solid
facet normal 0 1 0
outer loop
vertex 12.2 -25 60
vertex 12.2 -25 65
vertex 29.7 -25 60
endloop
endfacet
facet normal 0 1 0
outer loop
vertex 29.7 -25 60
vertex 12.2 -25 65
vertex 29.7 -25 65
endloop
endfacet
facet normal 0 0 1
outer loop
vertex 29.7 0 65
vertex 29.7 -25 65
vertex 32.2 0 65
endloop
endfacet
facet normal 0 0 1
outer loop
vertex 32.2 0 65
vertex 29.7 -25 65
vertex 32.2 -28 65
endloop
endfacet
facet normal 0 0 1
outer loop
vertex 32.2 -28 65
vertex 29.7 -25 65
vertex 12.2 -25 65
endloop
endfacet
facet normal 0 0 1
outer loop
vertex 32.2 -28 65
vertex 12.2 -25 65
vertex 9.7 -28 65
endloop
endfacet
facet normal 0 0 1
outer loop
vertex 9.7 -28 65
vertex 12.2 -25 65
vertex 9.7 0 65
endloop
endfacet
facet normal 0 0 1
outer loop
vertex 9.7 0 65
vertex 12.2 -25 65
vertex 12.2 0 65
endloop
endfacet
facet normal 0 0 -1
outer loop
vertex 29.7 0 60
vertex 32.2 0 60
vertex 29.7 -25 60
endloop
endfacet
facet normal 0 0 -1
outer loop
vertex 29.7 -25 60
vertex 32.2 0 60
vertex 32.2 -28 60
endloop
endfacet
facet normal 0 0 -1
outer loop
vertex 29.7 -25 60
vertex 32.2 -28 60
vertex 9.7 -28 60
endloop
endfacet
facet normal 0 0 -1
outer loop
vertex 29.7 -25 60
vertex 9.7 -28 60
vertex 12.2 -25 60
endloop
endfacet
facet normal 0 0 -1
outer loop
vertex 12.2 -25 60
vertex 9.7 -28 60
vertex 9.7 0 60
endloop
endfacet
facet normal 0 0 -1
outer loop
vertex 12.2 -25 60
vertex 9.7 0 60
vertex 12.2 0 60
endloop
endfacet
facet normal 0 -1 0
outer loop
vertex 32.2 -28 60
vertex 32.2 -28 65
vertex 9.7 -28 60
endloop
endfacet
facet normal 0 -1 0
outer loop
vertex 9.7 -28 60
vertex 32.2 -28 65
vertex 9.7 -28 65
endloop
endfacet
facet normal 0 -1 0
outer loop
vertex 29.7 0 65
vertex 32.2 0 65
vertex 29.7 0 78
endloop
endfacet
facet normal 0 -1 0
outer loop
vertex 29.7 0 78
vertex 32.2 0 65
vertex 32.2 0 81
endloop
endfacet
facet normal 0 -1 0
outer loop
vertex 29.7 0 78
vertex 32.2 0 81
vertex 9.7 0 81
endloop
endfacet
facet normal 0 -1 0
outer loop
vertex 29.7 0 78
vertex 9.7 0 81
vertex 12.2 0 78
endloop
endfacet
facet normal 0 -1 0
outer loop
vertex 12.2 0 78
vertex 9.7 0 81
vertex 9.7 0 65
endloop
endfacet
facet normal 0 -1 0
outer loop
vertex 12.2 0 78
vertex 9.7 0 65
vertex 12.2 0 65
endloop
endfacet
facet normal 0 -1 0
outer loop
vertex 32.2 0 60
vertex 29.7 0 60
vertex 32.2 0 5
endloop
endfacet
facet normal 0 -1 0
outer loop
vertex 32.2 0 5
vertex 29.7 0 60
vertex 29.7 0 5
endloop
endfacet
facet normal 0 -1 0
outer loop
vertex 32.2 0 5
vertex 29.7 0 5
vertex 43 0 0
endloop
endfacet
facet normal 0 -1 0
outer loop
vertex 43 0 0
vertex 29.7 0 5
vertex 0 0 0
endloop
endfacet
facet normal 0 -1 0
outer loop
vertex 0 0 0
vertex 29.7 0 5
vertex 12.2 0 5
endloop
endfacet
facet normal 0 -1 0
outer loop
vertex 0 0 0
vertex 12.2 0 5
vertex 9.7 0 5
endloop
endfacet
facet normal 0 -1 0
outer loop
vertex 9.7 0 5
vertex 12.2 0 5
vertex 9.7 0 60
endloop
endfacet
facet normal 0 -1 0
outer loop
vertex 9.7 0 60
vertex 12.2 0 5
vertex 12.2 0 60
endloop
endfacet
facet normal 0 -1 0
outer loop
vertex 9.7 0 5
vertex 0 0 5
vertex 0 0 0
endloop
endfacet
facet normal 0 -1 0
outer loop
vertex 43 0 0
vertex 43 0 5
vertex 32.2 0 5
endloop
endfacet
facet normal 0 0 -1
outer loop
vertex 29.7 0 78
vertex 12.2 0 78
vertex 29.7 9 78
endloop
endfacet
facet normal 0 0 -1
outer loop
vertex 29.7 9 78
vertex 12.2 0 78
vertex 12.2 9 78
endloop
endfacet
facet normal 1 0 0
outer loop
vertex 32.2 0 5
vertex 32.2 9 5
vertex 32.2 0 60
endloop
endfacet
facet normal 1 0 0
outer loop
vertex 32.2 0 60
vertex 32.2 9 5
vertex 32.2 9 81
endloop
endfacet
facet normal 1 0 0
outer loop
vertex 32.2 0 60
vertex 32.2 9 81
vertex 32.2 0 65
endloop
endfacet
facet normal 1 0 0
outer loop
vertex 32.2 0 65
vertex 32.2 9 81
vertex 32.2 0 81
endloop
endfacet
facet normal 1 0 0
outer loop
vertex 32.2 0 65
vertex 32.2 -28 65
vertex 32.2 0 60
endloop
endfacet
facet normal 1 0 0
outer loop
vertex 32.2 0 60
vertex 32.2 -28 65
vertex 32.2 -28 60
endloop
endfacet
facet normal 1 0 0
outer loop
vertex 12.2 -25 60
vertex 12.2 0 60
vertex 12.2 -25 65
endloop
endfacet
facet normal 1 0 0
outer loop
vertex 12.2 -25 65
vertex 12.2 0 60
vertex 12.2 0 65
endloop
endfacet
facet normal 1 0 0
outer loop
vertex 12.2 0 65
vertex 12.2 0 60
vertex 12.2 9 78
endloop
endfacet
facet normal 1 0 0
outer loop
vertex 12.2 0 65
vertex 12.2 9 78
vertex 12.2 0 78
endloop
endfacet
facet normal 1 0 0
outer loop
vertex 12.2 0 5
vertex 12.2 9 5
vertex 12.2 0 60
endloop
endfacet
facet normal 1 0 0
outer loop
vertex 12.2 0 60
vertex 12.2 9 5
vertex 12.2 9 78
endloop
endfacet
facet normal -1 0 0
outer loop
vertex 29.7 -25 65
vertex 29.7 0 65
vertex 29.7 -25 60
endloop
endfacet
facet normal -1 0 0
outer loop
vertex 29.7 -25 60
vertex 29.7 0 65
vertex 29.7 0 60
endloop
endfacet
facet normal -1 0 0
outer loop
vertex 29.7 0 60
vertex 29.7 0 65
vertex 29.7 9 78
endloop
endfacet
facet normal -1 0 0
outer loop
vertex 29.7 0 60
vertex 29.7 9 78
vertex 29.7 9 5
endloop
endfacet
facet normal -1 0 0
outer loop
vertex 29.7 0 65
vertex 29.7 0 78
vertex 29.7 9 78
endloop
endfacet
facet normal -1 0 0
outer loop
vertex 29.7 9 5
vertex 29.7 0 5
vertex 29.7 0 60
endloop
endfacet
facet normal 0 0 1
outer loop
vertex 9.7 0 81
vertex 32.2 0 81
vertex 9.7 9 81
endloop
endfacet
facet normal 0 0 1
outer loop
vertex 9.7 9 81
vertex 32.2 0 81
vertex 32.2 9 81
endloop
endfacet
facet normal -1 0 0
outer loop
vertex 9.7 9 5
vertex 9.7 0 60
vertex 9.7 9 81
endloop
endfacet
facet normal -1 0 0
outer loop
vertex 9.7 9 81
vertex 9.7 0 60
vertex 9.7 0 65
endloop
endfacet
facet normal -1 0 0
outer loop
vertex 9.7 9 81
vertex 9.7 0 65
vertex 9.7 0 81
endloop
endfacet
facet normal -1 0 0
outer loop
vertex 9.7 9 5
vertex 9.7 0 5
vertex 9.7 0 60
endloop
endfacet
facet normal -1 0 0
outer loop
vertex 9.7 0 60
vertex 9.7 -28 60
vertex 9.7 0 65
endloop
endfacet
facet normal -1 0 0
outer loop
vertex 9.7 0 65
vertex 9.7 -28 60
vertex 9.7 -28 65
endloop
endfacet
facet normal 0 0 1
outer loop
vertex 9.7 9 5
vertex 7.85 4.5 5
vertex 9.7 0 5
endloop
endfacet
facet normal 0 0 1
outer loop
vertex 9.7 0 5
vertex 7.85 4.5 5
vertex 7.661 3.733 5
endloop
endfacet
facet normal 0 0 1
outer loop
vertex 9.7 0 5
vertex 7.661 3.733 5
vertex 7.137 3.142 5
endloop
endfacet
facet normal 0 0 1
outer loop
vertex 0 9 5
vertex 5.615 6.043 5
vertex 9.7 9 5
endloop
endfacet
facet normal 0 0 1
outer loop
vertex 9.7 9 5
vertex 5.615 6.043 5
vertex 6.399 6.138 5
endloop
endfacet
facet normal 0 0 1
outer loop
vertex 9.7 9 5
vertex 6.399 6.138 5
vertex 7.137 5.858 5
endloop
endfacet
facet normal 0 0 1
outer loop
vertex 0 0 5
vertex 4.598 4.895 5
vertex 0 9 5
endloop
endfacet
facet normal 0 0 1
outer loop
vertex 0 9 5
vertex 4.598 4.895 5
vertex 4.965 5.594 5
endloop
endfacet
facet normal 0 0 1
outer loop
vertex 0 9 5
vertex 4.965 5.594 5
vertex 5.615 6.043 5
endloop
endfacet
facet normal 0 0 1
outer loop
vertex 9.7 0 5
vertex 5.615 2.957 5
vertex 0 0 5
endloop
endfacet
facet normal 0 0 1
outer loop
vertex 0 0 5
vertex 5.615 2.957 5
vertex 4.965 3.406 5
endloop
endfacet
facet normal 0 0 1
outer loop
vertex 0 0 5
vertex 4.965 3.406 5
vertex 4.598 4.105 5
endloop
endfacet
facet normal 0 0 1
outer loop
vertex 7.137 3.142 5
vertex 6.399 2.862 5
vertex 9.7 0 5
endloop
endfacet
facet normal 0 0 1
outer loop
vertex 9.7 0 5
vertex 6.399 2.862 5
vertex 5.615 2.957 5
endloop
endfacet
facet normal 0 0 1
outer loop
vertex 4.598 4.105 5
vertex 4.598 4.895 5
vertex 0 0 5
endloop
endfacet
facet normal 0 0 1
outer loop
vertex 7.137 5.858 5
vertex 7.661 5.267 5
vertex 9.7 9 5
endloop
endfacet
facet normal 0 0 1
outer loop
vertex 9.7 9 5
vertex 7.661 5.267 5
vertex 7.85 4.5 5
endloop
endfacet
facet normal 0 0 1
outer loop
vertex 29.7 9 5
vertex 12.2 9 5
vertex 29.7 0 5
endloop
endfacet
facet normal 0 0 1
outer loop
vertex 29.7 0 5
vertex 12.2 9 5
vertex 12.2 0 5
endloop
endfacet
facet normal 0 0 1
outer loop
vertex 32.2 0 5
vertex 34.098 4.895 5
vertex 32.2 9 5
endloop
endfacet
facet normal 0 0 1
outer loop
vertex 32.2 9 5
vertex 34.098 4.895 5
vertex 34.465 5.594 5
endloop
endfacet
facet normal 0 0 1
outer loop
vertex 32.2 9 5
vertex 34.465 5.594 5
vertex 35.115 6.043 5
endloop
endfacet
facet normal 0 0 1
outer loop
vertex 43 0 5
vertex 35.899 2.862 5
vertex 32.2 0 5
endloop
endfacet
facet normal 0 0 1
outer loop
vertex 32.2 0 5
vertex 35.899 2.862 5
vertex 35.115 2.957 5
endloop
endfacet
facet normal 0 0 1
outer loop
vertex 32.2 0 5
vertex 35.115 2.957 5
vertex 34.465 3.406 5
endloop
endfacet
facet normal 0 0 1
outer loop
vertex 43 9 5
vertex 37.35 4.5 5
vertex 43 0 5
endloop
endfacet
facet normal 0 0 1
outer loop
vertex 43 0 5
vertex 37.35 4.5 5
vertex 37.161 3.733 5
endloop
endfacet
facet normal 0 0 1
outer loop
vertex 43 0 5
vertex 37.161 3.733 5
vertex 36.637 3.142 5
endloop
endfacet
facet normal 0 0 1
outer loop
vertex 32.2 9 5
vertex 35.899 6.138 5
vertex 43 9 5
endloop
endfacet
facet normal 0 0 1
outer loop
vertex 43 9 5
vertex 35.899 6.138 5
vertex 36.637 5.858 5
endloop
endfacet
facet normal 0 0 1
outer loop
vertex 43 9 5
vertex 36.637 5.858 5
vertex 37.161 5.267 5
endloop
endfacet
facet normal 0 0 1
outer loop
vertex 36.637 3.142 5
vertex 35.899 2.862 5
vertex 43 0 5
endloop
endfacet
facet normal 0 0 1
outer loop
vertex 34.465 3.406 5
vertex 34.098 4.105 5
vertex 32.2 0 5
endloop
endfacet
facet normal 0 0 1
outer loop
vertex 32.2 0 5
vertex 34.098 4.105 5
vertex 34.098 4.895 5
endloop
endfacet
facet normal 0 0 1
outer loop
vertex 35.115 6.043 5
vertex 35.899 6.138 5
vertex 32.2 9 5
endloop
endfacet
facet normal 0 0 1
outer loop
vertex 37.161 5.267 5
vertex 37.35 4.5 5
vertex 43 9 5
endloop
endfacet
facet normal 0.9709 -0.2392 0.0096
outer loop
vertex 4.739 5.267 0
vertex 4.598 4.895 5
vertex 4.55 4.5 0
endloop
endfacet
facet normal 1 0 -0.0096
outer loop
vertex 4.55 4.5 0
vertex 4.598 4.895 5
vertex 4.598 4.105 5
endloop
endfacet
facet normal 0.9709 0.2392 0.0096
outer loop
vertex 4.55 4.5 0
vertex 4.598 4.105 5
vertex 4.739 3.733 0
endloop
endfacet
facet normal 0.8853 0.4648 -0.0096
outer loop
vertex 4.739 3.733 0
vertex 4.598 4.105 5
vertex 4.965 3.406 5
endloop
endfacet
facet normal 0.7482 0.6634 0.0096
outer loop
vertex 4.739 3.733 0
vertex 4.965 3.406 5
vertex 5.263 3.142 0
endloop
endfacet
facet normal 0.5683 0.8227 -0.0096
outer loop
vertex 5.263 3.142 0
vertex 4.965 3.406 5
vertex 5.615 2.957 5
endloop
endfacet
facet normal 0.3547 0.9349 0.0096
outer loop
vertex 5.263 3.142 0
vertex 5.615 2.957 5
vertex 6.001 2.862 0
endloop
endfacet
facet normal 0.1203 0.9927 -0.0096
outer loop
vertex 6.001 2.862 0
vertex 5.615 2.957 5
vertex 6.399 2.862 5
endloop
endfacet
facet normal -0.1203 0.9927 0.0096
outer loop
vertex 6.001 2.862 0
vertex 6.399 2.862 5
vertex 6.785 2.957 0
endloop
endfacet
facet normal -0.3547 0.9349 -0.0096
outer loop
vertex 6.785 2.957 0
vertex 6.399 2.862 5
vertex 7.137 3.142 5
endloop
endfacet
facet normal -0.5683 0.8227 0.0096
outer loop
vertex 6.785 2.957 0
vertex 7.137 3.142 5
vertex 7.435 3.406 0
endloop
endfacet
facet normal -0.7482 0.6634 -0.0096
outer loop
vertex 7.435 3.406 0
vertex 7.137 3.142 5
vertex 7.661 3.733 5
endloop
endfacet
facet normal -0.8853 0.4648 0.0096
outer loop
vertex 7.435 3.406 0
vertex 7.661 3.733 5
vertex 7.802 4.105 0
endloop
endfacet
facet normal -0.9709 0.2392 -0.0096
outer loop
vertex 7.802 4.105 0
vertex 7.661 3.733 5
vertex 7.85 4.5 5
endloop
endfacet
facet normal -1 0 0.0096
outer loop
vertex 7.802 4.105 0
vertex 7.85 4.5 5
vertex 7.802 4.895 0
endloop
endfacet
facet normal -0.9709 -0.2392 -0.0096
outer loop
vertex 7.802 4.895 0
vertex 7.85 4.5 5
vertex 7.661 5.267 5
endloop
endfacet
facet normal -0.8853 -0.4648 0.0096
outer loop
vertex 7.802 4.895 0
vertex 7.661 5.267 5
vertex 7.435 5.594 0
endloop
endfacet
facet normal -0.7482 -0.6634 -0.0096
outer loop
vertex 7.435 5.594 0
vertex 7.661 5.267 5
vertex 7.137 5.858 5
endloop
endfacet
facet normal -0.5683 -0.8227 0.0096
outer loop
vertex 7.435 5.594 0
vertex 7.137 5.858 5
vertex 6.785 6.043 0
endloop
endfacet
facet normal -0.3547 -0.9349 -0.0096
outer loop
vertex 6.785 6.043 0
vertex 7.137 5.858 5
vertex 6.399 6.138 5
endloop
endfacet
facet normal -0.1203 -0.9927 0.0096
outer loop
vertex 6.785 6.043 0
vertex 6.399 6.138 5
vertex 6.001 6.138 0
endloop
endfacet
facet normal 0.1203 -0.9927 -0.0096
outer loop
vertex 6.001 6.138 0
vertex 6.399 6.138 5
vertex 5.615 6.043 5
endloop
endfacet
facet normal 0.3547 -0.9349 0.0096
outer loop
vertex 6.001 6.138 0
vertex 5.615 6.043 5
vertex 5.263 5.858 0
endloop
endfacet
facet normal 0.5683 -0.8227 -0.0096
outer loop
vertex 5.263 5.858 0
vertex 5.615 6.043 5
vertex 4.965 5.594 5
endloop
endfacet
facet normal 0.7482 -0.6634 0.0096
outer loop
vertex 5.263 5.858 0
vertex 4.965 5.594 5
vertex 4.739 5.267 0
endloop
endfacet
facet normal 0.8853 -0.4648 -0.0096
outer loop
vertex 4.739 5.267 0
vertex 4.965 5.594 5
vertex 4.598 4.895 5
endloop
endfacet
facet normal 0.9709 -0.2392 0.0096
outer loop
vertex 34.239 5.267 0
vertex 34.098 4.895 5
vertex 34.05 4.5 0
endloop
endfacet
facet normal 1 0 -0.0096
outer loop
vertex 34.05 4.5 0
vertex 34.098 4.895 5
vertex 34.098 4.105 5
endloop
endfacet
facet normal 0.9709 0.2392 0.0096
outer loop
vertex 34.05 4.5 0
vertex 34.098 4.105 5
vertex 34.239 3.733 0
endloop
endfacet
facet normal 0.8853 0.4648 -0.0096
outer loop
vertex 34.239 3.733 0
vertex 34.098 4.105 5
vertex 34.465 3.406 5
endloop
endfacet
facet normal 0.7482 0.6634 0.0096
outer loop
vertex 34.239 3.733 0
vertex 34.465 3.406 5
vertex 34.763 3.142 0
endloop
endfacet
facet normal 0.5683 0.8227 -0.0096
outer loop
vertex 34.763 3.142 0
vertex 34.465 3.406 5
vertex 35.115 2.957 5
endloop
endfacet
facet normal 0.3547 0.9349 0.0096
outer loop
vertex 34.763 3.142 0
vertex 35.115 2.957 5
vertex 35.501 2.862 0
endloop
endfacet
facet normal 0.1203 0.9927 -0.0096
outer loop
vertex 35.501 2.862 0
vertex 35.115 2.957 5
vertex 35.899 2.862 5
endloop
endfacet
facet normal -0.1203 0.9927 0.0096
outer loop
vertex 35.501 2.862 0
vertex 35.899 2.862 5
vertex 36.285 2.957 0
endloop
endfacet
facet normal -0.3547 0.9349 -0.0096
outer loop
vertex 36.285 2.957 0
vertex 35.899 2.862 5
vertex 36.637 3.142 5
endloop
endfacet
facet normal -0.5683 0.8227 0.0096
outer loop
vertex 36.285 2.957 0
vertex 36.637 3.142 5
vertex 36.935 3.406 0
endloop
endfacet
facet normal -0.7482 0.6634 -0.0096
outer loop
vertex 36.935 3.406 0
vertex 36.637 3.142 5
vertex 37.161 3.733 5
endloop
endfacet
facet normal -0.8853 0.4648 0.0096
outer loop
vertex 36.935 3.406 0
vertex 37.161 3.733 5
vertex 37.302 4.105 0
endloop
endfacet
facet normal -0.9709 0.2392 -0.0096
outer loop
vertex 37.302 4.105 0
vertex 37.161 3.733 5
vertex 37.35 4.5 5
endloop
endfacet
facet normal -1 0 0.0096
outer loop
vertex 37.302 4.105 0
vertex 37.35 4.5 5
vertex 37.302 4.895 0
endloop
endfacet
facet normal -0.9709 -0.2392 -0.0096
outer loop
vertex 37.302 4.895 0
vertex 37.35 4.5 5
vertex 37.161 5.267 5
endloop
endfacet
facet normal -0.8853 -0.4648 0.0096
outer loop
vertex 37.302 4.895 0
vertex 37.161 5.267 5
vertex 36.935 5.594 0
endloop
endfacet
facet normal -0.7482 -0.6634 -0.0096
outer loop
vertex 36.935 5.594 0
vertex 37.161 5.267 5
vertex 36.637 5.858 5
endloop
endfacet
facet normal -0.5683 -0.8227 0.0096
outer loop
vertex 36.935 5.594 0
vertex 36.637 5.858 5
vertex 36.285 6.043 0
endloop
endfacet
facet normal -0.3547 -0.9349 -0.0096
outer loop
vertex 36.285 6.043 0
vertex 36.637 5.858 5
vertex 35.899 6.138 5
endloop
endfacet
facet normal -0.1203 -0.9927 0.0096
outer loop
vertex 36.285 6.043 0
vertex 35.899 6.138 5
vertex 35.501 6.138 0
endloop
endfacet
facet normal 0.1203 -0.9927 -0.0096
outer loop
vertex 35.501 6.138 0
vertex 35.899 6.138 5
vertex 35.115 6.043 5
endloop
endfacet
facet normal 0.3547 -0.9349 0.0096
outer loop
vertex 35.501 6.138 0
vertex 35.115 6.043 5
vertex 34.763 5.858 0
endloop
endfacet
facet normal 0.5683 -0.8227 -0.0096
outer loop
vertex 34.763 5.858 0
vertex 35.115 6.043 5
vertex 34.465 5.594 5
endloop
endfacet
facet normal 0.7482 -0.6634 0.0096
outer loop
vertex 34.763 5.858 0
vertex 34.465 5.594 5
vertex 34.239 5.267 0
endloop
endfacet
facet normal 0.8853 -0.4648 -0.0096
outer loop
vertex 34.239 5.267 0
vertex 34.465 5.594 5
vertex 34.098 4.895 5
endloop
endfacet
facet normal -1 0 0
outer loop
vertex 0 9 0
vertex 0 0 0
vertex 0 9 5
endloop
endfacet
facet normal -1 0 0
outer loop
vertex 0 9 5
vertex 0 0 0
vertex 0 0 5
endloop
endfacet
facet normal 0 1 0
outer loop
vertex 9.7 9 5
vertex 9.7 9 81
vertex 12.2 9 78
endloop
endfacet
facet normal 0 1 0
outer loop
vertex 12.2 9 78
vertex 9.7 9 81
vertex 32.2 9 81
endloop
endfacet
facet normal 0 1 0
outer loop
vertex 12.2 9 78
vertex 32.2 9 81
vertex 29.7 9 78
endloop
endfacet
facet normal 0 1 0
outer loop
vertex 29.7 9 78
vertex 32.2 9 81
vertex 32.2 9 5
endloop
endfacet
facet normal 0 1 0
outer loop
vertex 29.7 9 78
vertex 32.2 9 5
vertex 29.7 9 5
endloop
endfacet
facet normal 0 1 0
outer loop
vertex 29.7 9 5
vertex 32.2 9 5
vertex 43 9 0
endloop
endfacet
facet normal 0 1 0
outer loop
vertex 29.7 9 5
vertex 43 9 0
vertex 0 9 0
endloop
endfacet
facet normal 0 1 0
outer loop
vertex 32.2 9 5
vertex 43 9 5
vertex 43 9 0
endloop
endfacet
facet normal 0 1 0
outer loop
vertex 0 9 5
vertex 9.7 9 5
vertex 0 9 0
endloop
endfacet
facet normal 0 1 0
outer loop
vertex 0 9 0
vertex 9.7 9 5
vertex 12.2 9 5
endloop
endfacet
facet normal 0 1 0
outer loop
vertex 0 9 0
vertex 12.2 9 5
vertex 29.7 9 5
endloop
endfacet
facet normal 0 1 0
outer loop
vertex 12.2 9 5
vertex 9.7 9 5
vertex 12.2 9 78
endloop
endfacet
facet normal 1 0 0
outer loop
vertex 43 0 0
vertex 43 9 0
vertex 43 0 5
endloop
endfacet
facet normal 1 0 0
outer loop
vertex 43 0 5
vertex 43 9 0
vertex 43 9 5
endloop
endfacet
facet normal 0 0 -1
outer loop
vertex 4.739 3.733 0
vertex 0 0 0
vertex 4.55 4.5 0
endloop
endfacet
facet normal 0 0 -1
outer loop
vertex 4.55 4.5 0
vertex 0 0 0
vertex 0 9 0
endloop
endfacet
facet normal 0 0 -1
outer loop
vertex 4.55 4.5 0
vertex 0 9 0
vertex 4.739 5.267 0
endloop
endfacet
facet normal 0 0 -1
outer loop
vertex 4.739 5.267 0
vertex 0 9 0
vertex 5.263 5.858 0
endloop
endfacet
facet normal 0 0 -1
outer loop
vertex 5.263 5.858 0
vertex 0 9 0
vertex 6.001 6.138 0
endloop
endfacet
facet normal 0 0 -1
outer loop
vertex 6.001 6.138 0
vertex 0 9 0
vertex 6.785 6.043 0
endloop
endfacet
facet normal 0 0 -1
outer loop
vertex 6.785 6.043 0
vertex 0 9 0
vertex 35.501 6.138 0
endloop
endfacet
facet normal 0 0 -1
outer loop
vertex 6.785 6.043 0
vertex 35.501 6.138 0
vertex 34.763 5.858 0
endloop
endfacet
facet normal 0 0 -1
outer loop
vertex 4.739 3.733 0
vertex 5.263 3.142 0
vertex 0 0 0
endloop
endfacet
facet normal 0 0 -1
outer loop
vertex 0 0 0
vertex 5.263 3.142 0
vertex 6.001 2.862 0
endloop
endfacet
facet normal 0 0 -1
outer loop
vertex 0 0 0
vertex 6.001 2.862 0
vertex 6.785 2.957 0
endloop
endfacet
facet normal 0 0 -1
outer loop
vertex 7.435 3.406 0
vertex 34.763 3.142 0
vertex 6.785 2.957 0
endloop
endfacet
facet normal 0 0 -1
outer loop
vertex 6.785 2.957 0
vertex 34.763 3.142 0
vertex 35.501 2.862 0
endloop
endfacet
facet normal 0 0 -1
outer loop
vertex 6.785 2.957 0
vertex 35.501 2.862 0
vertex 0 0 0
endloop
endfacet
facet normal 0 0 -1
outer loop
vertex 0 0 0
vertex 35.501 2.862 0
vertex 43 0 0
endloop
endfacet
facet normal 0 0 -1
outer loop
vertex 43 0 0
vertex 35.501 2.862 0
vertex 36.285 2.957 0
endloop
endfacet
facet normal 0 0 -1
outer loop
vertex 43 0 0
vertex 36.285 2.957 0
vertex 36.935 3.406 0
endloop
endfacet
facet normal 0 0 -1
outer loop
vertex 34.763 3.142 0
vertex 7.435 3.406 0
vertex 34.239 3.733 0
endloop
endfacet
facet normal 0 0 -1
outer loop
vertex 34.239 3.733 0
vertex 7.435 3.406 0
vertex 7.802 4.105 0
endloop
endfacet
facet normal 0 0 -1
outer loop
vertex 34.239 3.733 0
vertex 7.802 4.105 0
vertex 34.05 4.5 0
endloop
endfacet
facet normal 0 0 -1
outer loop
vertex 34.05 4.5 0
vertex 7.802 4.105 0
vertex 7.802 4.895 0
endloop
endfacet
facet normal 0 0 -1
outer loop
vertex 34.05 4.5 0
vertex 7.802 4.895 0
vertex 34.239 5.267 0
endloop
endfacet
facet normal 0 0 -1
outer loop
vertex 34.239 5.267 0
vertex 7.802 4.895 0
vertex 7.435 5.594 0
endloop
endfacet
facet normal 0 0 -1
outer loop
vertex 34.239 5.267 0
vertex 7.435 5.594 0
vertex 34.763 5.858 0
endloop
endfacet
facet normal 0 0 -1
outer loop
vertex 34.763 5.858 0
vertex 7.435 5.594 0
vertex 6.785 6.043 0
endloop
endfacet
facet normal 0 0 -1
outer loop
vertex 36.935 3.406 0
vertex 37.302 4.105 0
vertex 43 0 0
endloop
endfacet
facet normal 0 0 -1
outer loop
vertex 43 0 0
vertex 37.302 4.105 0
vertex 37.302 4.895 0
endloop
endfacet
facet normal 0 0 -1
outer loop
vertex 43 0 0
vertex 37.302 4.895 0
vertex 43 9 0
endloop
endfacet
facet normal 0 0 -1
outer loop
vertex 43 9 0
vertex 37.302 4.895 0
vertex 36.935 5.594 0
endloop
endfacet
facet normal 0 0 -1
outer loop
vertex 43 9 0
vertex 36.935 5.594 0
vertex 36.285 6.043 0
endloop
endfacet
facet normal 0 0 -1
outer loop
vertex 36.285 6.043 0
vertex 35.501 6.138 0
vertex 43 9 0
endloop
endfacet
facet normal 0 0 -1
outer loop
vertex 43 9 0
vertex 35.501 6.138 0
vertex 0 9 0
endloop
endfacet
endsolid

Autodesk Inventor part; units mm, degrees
ref_plane "YZ Plane" through (0, 0, 0) normal (1, 0, 0) x (0, 1, 0)
ref_plane "XZ Plane" through (0, 0, 0) normal (0, 1, 0) x (-1, 0, 0)
ref_plane "XY Plane" through (0, 0, 0) normal (0, 0, 1) x (1, 0, 0)
sketch "Sketch1" plane through (0, 0, 0) normal (0, 0, 1) x (1, 0, 0)
  line L0 (0, 0) -> (43, 0)
  line L1 (43, 0) -> (43, 9)
  line L2 (43, 9) -> (0, 9)
  line L3 (0, 9) -> (0, 0)
  dimension "d0" = 43
  dimension "d1" = 9
extrude "Extrusion1" add sketch "Sketch1" along normal blind 5
sketch "Sketch2" plane through (0, 0, 5) normal (0, 0, 1) x (1, 0, 0)
  line L0 (43, 0) -> (43, 9) projected
  line L1 (43, 9) -> (0, 9) projected
  point P0 (0, 0)
  point P1 (35.7, 4.5)
  point P2 (6.2, 4.5)
  dimension "d11" = 7.3
  dimension "d12" = 29.5
  dimension "d13" = 4.5
  dimension "d14" = 4.5
hole "Hole1" at (35.7, 4.5, 5) at (6.2, 4.5, 5) direction (0, 0, -1) diameter 3.3 end through all
sketch "Sketch3" plane through (0, 0, 5) normal (0, 0, 1) x (1, 0, 0)
  line L0 (0, 0) -> (43, 0) projected
  line L1 (43, 9) -> (0, 9) projected
  line L2 (9.7, 0) -> (12.2, 0)
  line L3 (12.2, 0) -> (12.2, 9)
  line L4 (12.2, 9) -> (9.7, 9)
  line L5 (9.7, 9) -> (9.7, 0)
  line L6 (29.7, 9) -> (32.2, 9)
  line L7 (32.2, 9) -> (32.2, 0)
  line L8 (32.2, 0) -> (29.7, 0)
  line L9 (29.7, 0) -> (29.7, 9)
  circle A0 centre (35.7, 4.5) radius 1.65 projected
  point P0 (29.7, 4.5)
  point P1 (12.2, 4.5)
  point P2 (32.2, 4.5)
  point P3 (29.7, 9)
  point P4 (29.7, 0)
  point P5 (32.2, 0)
  point P6 (32.2, 9)
  point P7 (12.2, 0)
  dimension "d15" = 2.5
  dimension "d16" = 2.5
  dimension "d17" = 17.5
  dimension "d18" = 3.5
extrude "Extrusion2" add sketch "Sketch3" along normal blind 76 contours L5 L1 L3 L0 | L9 L1 L7 L0
sketch "Sketch4" plane through (0, 0, 81) normal (0, 0, 1) x (1, 0, 0)
  line L0 (12.2, 9) -> (9.7, 9) projected
  line L1 (32.2, 0) -> (9.7, 0)
  line L2 (9.7, 0) -> (9.7, 9)
  line L3 (9.7, 9) -> (32.2, 9)
  line L4 (32.2, 9) -> (32.2, 0)
  point P0 (0, 0)
extrude "Extrusion3" add sketch "Sketch4" against normal blind 3
sketch "Sketch7" plane through (0, 0, 0) normal (0, -1, 0) x (1, 0, 0)
  line L0 (9.7, 60) -> (9.7, 65) projected
  line L1 (9.7, 65) -> (12.2, 65)
  line L2 (12.2, 65) -> (12.2, 60)
  line L3 (12.2, 60) -> (9.7, 60)
  line L4 (9.7, 60) -> (9.7, 65)
  line L5 (32.2, 65) -> (29.7, 65) projected
  line L6 (29.7, 65) -> (32.2, 65)
  line L7 (32.2, 65) -> (32.2, 60)
  line L8 (32.2, 60) -> (29.7, 60)
  line L9 (29.7, 60) -> (29.7, 65)
  point P0 (0, 0)
  dimension "d31" = 2.5
  dimension "d32" = 5
extrude "Extrusion6" add sketch "Sketch7" along normal blind 28
sketch "Sketch8" plane through (29.7, 0, 5) normal (-1, 0, 0) x (0, 0, 1)
  line L0 (60, 0) -> (60, -28) projected
  line L1 (60, -28) -> (55, -28)
  line L2 (55, -28) -> (55, -25)
  line L3 (55, -25) -> (60, -25)
  line L4 (60, -25) -> (60, -28)
  point P0 (-5, 0)
  dimension "d35" = 5
  dimension "d36" = 3
extrude "Extrusion7" add sketch "Sketch8" along normal blind 18
properties part number "Batteryholder1"
